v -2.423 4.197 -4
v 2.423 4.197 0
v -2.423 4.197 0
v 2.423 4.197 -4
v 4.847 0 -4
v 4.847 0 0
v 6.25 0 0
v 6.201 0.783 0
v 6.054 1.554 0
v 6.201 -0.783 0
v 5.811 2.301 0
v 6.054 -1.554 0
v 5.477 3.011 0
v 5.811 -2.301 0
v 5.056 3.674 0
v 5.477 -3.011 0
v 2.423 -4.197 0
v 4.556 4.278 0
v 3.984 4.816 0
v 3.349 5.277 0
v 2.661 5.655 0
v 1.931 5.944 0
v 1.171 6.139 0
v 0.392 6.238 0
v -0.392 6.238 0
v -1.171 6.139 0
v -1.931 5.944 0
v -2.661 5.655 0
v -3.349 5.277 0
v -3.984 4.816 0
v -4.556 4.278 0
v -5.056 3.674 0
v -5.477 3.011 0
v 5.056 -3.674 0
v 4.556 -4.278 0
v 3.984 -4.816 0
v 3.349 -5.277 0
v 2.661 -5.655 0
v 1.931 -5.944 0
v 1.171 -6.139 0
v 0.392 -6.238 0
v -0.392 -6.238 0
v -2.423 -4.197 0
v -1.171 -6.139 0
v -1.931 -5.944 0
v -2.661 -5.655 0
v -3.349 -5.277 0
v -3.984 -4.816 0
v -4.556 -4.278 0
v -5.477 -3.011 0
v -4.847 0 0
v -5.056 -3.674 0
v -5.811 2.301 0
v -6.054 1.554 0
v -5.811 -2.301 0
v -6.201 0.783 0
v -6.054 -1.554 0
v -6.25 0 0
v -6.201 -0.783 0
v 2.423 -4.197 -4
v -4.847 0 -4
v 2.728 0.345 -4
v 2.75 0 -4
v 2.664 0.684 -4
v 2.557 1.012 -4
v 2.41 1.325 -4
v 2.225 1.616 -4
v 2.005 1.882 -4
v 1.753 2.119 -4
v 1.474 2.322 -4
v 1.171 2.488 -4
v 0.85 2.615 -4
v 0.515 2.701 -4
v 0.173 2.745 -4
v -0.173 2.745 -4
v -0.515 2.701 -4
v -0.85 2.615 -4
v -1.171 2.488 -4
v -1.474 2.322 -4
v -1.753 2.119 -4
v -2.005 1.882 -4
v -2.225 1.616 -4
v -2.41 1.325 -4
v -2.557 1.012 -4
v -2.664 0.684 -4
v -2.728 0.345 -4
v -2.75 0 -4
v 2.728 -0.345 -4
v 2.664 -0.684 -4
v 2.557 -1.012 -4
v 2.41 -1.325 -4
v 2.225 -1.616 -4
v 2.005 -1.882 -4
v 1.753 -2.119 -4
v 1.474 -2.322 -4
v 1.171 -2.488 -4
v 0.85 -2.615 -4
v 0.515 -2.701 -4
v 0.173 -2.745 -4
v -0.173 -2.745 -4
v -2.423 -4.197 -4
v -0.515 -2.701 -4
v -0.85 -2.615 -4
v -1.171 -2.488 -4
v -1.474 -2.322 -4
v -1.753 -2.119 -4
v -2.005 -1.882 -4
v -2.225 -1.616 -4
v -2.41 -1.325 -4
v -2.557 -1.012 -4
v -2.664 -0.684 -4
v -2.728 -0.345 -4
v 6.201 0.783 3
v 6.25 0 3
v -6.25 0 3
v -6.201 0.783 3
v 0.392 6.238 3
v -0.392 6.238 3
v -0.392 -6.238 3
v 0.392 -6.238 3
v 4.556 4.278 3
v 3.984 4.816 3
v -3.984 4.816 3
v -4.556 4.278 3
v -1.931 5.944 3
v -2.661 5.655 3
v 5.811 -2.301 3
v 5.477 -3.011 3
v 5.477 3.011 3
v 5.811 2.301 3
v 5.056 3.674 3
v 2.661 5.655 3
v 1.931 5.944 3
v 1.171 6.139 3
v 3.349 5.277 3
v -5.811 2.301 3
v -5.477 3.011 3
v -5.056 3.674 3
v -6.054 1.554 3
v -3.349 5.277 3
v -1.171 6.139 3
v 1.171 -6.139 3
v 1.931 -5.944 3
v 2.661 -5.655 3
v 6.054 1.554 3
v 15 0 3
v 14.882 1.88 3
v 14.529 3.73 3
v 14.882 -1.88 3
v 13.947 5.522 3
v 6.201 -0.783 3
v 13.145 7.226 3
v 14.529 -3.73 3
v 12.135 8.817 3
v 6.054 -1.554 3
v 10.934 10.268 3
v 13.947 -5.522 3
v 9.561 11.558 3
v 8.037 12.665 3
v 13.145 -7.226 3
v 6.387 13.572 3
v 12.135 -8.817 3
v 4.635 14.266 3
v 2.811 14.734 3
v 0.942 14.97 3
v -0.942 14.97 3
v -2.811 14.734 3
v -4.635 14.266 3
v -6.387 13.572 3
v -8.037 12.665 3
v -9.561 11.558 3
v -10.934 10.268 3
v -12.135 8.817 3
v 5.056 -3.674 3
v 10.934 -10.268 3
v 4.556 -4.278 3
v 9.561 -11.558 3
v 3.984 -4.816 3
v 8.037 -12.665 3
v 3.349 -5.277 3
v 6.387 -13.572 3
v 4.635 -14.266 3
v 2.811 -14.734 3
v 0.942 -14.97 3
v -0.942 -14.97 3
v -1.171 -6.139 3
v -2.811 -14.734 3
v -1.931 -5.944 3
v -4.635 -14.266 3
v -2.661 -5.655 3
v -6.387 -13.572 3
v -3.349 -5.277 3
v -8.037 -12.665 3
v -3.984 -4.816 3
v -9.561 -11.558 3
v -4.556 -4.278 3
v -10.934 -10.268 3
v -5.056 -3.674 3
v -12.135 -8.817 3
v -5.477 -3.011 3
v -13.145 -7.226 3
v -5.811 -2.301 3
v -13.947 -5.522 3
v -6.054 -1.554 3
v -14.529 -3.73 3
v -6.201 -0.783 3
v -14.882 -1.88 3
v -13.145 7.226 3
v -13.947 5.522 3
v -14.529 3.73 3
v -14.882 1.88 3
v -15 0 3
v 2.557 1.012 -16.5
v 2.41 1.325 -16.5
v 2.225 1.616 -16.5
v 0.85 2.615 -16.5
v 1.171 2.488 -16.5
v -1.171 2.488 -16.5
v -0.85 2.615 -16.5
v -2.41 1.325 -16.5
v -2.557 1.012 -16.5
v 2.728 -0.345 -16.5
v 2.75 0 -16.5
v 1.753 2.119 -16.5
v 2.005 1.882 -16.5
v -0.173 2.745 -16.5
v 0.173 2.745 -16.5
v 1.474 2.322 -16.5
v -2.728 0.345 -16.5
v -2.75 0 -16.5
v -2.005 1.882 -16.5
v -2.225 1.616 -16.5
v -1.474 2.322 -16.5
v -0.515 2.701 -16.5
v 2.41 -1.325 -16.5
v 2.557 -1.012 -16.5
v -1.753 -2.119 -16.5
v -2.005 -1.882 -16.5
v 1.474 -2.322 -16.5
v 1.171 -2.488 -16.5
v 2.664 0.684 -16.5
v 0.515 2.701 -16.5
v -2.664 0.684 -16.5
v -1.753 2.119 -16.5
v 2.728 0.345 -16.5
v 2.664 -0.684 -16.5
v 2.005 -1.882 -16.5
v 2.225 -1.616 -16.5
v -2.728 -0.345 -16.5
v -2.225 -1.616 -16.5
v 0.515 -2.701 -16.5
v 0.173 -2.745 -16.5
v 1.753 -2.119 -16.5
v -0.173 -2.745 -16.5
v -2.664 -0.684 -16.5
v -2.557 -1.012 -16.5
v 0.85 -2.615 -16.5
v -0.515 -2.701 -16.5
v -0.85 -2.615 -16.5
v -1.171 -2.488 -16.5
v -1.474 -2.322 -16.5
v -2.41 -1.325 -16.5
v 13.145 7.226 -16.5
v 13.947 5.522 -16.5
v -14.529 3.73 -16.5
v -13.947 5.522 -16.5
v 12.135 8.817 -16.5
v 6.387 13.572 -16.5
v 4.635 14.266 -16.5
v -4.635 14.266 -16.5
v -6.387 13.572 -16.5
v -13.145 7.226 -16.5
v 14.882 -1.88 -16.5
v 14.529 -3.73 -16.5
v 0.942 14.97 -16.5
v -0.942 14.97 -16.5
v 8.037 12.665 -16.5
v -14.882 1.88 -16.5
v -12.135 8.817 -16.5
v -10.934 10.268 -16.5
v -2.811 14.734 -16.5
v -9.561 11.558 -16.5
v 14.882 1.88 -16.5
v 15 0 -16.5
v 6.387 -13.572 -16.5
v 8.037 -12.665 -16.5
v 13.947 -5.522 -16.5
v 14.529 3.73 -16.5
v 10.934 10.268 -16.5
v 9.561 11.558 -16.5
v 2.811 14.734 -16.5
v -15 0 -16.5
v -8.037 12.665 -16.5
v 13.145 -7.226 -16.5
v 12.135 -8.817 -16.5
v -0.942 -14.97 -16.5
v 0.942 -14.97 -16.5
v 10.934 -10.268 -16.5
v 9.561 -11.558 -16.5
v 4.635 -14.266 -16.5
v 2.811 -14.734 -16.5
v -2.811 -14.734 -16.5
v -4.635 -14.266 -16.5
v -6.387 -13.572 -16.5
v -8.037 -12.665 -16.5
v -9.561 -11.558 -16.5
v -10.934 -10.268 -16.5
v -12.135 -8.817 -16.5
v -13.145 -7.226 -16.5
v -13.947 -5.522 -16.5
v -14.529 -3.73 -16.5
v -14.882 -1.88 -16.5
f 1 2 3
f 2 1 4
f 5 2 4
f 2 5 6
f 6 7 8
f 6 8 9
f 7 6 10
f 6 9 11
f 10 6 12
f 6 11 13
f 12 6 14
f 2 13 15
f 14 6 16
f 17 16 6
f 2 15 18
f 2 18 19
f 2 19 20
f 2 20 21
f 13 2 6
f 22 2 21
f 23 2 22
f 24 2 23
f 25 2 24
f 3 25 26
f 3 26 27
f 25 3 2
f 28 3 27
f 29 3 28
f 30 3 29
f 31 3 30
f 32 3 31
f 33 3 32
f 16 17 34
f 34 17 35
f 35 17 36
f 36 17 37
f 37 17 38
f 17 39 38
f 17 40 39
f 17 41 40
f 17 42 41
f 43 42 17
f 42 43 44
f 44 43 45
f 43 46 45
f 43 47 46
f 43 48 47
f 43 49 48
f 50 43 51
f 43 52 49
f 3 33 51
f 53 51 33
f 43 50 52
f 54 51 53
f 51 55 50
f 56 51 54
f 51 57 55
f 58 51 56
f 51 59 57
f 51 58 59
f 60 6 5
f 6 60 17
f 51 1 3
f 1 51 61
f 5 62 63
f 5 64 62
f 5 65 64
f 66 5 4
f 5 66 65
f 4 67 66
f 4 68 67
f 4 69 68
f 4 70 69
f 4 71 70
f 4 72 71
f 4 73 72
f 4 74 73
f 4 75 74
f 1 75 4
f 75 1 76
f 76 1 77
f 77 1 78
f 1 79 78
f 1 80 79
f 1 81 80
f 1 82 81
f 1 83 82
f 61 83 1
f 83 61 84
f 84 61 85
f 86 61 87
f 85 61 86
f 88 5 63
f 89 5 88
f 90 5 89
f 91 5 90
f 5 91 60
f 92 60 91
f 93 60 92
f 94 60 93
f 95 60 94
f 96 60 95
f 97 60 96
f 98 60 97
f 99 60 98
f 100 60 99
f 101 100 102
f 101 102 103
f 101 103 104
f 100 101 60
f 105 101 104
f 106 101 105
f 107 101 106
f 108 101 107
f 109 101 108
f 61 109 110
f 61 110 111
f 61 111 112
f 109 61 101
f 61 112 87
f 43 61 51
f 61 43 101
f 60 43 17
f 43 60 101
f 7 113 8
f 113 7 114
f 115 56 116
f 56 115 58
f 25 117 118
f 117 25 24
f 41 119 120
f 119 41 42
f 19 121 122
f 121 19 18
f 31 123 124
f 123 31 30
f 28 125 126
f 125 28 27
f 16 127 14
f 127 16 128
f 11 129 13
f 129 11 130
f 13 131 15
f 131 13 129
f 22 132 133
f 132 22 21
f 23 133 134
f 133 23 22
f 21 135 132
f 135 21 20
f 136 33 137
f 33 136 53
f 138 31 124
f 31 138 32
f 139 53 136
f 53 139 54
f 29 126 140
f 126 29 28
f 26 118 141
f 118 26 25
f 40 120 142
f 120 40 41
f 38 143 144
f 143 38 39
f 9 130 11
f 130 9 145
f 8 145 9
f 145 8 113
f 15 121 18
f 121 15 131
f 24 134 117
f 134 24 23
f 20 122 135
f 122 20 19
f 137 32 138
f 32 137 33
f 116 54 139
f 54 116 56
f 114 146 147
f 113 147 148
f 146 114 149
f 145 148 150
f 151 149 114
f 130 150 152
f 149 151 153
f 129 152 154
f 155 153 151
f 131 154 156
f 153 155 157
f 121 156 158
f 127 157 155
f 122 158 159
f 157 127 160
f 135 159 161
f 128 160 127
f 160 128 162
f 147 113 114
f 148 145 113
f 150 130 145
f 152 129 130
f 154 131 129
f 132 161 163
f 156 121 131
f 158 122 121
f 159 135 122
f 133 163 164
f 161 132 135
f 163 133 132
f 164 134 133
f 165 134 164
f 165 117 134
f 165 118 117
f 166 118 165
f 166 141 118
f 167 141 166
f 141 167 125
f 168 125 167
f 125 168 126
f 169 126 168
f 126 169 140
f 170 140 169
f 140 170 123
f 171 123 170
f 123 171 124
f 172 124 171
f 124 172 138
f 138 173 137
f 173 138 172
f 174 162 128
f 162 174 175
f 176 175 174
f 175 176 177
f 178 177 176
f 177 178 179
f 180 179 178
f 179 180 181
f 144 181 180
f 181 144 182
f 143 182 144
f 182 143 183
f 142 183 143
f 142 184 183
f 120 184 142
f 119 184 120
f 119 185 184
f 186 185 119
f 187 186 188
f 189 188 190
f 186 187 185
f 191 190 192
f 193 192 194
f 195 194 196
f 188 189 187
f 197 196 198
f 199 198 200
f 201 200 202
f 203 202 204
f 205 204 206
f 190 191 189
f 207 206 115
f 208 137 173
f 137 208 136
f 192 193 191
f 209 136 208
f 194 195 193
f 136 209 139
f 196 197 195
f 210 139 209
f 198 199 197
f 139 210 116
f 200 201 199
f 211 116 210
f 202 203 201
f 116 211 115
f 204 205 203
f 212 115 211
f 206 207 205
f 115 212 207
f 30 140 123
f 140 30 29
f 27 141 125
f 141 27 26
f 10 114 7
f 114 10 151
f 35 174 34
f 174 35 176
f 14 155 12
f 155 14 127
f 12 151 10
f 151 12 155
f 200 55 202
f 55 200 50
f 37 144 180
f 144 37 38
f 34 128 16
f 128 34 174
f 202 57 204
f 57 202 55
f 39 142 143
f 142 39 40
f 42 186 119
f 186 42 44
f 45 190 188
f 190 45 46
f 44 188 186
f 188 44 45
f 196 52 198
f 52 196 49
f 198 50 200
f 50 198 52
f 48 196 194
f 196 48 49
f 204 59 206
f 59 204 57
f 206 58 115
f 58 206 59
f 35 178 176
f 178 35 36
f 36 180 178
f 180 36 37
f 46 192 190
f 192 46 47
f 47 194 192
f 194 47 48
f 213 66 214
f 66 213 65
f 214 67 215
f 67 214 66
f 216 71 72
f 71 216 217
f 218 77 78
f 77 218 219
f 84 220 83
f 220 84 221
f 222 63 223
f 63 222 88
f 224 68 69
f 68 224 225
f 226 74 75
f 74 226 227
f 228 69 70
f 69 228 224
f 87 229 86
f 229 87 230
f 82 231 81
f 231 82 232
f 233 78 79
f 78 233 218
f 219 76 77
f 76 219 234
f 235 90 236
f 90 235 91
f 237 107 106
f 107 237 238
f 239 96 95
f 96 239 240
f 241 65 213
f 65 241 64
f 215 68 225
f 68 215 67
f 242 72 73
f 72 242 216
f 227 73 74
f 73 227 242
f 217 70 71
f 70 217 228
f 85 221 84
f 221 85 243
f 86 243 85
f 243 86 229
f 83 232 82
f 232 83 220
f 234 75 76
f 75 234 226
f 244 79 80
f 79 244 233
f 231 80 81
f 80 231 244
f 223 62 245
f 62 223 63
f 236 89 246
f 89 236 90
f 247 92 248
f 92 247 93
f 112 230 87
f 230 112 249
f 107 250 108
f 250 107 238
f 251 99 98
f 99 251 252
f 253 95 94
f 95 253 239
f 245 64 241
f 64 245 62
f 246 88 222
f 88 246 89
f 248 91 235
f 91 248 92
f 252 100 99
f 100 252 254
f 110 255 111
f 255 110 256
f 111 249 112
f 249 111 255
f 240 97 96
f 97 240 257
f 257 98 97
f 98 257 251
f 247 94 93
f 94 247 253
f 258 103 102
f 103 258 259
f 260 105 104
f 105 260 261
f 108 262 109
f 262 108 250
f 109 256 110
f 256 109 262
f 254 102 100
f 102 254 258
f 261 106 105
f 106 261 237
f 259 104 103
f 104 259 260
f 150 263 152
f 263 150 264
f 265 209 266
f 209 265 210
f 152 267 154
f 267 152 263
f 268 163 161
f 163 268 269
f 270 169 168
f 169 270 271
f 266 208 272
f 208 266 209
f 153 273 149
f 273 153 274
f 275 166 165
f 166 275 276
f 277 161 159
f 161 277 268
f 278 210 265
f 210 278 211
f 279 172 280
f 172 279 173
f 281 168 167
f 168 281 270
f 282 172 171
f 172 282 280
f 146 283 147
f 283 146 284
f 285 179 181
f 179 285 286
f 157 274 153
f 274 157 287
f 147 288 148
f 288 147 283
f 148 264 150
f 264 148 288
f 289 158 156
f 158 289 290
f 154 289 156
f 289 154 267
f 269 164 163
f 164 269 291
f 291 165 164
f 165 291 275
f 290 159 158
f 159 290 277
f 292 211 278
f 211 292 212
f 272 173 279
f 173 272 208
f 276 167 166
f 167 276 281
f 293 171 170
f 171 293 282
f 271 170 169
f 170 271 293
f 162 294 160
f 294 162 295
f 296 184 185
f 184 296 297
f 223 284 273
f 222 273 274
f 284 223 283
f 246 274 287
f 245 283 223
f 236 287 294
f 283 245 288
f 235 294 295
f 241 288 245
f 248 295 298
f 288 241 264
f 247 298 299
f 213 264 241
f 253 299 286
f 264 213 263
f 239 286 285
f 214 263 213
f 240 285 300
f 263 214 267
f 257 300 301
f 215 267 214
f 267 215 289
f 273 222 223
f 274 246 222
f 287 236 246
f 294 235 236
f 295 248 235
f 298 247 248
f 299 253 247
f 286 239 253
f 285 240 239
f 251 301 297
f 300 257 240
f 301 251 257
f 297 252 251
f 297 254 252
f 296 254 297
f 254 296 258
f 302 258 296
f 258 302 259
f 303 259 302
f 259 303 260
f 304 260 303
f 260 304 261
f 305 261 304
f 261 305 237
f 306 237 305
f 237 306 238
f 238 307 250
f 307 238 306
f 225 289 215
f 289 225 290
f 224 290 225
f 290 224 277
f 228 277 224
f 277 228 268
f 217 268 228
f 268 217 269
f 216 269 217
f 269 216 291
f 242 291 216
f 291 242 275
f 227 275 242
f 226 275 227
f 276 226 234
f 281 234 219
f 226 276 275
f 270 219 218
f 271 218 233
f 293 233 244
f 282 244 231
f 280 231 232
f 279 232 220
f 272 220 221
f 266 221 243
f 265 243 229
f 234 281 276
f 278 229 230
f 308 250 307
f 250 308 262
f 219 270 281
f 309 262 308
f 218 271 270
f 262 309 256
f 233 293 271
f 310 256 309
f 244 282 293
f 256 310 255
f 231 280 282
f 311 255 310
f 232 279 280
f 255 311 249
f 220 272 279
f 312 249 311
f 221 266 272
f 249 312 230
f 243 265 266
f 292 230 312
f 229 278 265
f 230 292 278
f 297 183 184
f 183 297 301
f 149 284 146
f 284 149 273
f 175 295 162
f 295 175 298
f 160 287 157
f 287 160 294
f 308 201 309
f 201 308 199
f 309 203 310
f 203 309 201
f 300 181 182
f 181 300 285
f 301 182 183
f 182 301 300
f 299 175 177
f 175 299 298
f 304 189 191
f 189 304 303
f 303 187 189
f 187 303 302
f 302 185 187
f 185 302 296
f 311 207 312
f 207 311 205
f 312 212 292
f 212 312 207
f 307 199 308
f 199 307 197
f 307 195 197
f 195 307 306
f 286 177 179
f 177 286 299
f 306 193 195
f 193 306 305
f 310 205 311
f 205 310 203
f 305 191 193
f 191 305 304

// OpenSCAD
$fn = 50;

difference() {
	union() {
		translate(v = [0, 0, -16.5]) {
			cylinder(h = 19.5, r = 15.0);
		}
	}
	union() {
		translate(v = [0, 0, 0]) {
			rotate(a = [0, 0, 0]) {
				difference() {
					union() {
						translate(v = [0, 0, -4]) {
							linear_extrude(height = 4) {
								polygon(points = [[4.8468, 0.0], [2.4234000000000004, 4.197451927062417], [-2.423399999999999, 4.197451927062417], [-4.8468, 5.935618106107392e-16], [-2.423400000000002, -4.197451927062416], [2.423399999999997, -4.197451927062419]]);
							}
						}
					}
					union();
				}
			}
		}
		#cylinder(h = 3, r = 6.25);
		#translate(v = [0, 0, -100.0]) {
			cylinder(h = 200, r = 2.75);
		}
	}
}
